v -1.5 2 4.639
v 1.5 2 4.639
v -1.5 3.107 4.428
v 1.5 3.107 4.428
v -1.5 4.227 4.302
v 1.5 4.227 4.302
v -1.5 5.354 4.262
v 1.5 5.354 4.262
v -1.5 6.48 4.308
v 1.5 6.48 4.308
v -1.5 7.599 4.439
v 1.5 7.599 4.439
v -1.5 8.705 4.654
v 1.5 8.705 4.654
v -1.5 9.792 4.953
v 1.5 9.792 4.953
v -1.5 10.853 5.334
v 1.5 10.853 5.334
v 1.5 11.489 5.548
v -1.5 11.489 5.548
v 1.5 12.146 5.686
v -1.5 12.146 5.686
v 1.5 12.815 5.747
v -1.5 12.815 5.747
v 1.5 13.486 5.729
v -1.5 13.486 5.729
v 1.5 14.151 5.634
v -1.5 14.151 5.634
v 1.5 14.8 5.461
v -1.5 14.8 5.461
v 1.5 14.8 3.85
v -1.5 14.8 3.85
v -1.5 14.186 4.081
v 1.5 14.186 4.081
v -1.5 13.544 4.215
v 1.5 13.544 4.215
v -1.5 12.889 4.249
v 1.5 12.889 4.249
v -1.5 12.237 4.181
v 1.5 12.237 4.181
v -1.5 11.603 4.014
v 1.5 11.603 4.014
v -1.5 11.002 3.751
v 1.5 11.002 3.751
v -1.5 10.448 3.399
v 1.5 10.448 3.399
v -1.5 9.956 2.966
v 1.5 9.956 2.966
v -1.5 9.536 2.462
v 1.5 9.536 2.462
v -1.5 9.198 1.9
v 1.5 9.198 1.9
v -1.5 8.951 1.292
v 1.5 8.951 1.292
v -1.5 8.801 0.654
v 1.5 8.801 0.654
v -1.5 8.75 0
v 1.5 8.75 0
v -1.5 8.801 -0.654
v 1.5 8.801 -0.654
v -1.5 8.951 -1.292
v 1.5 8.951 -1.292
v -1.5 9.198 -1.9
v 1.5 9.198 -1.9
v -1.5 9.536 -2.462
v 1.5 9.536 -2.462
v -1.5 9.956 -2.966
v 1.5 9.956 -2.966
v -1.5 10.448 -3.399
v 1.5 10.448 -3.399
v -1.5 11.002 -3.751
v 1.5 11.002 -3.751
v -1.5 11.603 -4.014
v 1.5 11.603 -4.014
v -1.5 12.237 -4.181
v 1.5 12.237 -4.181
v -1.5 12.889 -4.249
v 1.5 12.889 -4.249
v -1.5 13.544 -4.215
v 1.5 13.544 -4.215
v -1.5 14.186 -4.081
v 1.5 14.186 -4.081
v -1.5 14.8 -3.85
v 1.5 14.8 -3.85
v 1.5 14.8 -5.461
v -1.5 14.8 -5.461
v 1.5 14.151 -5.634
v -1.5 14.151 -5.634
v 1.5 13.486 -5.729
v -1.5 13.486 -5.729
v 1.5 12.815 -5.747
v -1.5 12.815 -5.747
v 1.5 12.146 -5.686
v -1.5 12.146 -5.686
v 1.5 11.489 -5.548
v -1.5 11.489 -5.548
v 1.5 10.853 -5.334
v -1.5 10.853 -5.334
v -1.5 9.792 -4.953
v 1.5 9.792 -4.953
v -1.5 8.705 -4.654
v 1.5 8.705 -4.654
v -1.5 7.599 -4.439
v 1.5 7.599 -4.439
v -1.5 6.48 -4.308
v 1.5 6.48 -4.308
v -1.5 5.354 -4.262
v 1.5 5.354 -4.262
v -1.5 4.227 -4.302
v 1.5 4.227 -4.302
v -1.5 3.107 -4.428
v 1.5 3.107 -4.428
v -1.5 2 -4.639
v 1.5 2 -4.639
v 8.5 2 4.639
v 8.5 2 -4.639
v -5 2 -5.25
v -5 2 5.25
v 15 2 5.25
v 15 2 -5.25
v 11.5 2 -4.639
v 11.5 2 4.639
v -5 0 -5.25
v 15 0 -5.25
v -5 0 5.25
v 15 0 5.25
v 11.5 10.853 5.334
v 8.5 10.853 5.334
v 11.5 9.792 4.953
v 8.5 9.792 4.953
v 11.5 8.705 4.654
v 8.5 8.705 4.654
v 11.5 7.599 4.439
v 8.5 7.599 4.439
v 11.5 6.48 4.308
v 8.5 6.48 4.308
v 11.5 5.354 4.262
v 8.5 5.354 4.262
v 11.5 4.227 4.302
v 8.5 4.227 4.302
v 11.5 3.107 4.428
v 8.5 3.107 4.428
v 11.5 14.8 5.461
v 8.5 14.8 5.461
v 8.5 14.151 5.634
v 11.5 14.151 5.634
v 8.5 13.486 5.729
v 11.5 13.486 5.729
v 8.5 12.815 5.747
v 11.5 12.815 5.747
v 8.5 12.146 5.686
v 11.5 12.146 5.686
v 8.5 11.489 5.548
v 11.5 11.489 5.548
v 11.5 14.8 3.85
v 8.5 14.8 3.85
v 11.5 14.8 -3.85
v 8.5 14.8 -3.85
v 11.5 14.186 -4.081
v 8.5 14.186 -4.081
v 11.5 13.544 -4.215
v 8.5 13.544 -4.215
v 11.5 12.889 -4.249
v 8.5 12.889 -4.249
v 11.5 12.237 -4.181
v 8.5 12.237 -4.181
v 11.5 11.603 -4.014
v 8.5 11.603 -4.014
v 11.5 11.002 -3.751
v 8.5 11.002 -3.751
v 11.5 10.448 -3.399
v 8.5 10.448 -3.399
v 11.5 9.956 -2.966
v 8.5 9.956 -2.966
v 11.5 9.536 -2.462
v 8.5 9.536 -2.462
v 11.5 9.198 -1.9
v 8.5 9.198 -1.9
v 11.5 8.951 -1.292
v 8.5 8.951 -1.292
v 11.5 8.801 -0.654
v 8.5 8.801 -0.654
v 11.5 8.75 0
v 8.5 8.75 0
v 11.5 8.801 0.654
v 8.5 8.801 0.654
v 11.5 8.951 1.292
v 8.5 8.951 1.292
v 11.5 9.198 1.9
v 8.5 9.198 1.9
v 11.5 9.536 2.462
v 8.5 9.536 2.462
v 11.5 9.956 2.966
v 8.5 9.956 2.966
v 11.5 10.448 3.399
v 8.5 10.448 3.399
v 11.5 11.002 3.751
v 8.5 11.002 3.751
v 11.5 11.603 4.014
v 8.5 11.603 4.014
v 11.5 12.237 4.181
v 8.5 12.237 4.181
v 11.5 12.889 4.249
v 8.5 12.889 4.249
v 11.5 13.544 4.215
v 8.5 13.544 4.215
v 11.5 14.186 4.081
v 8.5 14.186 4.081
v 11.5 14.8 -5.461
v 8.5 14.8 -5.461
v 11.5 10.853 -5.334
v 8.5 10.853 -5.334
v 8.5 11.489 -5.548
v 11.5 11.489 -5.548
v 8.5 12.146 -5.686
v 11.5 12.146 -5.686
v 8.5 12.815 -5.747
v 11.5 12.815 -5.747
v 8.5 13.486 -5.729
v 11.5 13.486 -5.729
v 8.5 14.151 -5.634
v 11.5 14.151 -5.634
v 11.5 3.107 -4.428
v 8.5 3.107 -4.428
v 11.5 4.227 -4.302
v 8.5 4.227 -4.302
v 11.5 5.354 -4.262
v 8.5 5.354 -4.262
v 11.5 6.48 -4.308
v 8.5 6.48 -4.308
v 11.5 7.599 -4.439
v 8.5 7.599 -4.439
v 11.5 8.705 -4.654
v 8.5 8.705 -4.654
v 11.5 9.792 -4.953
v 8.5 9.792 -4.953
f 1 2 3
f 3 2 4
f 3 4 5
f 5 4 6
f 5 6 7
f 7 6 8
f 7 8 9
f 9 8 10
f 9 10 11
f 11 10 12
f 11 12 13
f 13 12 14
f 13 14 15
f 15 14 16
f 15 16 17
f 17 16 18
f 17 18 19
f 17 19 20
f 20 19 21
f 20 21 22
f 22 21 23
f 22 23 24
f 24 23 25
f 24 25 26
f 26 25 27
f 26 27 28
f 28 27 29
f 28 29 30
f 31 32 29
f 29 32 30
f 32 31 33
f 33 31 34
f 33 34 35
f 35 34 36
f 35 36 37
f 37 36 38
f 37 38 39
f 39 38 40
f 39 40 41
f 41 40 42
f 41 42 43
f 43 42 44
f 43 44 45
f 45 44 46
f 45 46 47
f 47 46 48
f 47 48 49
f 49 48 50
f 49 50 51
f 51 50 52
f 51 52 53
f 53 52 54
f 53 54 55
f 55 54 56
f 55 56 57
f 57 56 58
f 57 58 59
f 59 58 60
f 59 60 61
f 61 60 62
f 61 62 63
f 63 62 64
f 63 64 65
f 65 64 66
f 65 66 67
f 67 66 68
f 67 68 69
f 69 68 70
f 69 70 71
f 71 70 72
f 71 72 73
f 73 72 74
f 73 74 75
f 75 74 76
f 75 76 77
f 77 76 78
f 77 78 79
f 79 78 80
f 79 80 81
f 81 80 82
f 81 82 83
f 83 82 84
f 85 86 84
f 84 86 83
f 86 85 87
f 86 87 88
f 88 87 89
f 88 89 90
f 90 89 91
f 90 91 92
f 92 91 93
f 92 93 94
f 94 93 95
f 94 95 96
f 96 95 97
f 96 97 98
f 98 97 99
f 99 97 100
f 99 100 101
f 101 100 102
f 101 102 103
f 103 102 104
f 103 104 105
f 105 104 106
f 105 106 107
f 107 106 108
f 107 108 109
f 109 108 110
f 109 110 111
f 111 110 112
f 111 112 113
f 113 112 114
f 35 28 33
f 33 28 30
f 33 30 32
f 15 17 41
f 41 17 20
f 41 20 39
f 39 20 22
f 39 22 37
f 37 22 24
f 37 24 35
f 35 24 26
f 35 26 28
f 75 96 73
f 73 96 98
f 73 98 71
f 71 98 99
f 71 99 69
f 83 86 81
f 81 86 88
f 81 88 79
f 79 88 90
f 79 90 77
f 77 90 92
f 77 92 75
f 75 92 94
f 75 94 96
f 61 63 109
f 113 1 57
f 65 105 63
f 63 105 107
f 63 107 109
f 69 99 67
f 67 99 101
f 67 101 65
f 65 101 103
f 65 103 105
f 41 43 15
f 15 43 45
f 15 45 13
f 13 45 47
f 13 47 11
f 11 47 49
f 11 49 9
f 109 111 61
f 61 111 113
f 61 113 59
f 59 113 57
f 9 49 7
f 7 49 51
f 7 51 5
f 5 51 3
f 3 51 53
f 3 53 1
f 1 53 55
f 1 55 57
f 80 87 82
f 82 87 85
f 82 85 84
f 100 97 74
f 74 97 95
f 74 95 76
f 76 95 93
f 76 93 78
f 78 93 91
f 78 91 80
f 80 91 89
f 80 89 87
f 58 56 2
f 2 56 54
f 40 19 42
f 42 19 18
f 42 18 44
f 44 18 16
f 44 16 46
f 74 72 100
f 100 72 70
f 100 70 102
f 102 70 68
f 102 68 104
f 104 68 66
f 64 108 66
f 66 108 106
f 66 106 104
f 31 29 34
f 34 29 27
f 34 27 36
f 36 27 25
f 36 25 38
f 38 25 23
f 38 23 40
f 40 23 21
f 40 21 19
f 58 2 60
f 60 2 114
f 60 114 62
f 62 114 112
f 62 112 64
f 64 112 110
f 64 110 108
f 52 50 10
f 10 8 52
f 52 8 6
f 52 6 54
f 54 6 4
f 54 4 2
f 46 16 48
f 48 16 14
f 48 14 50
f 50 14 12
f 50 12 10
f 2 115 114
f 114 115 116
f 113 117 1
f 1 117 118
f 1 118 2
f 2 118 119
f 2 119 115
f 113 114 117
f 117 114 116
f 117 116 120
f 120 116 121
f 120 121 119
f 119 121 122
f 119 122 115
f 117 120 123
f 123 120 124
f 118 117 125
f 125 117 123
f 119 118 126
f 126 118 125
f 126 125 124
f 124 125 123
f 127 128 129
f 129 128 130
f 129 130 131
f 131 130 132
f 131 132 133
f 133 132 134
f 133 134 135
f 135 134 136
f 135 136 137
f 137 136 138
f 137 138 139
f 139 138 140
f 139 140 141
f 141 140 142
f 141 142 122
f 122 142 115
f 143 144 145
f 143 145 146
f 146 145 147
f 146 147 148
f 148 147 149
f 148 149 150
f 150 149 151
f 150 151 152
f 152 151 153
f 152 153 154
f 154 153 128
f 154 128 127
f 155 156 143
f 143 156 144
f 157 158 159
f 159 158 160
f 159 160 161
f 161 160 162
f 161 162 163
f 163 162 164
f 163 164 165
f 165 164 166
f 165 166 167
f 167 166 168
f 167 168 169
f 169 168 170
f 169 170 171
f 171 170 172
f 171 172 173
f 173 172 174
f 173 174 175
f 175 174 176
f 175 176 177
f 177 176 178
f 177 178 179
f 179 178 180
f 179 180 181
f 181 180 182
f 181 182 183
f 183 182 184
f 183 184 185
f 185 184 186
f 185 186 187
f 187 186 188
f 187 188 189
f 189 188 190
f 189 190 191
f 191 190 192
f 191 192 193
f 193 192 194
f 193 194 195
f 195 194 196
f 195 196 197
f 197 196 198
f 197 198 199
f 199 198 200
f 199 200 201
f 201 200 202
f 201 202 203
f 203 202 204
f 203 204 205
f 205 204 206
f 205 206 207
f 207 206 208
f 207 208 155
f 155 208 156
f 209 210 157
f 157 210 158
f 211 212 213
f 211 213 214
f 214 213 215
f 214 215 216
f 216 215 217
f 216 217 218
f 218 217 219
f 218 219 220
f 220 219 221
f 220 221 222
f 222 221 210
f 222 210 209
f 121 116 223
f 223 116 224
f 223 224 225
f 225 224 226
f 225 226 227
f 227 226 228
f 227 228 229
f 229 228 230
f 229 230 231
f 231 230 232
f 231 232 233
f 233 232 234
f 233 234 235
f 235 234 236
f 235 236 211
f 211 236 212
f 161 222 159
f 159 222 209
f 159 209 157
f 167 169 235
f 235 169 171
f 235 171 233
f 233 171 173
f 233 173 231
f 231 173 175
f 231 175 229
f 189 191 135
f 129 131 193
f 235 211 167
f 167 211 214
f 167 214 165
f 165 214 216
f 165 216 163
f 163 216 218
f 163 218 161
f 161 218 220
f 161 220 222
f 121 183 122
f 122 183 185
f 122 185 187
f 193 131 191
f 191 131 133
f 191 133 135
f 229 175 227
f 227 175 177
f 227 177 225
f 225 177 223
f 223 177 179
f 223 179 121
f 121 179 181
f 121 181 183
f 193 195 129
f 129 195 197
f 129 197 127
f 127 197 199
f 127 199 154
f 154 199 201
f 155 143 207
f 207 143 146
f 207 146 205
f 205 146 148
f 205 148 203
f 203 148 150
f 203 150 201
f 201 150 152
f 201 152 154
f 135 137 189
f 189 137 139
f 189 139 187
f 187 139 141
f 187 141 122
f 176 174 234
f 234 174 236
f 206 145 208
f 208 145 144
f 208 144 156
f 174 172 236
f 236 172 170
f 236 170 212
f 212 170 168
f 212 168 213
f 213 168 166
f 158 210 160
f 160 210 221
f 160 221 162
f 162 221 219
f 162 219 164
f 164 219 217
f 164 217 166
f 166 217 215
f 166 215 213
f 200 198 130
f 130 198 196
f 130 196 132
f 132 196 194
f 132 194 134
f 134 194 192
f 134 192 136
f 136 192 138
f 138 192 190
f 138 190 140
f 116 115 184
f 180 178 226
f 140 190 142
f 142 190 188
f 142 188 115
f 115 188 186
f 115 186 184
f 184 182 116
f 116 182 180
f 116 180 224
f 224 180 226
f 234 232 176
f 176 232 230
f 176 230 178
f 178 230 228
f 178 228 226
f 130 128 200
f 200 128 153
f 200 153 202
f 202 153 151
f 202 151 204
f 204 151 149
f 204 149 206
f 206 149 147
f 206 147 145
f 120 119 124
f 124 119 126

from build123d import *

# Parameters (mm, degrees)
BOSS_EXTRUDE1_DEPTH      = 1.5
BOSS_EXTRUDE1_DEPTH_BACK = 1.5
SKETCH3_W                = 10
SKETCH3_H                = 10.5
BOSS_EXTRUDE2_DEPTH      = 2


with BuildPart() as part:
    # Sketch1 → Boss-Extrude1 (new, two sides: drawn at the far end of the back side and taken through both)
    with BuildSketch(Plane(origin=(0, 0, 0), x_dir=(0, 0, -1), z_dir=(1, 0, 0)).offset(-BOSS_EXTRUDE1_DEPTH_BACK)):
        with BuildLine():
            Line((-5.460998077, 14.8), (-3.85, 14.8))
            ThreePointArc((-3.85, 14.8), (0, 8.75), (3.85, 14.8))
            Line((3.85, 14.8), (5.460998077, 14.8))
            ThreePointArc((5.460998077, 14.8), (5.747028676, 12.815171978), (5.334054451, 10.852824386))
            ThreePointArc((5.334054451, 10.852824386), (4.262621587, 5.434384876), (5.25, 0))
            Line((5.25, 0), (-5.25, 0))
            ThreePointArc((-5.25, 0), (-4.262621587, 5.434384876), (-5.334054451, 10.852824386))
            ThreePointArc((-5.334054451, 10.852824386), (-5.747028676, 12.815171978), (-5.460998077, 14.8))
        make_face()
    extrude(amount=BOSS_EXTRUDE1_DEPTH + BOSS_EXTRUDE1_DEPTH_BACK)

    # Sketch3 → Boss-Extrude2 (add)
    with BuildSketch(Plane.XZ):
        Rectangle(SKETCH3_W, SKETCH3_H)
    extrude(amount=-BOSS_EXTRUDE2_DEPTH)

    # Mirror1: part across plane


with BuildPart() as part_1:
    add(part.part)
    add(part.part.mirror(Plane(origin=(5, 2, -5.25), x_dir=(0, 0, 1), z_dir=(1, 0, 0))))


solid = part_1.part
